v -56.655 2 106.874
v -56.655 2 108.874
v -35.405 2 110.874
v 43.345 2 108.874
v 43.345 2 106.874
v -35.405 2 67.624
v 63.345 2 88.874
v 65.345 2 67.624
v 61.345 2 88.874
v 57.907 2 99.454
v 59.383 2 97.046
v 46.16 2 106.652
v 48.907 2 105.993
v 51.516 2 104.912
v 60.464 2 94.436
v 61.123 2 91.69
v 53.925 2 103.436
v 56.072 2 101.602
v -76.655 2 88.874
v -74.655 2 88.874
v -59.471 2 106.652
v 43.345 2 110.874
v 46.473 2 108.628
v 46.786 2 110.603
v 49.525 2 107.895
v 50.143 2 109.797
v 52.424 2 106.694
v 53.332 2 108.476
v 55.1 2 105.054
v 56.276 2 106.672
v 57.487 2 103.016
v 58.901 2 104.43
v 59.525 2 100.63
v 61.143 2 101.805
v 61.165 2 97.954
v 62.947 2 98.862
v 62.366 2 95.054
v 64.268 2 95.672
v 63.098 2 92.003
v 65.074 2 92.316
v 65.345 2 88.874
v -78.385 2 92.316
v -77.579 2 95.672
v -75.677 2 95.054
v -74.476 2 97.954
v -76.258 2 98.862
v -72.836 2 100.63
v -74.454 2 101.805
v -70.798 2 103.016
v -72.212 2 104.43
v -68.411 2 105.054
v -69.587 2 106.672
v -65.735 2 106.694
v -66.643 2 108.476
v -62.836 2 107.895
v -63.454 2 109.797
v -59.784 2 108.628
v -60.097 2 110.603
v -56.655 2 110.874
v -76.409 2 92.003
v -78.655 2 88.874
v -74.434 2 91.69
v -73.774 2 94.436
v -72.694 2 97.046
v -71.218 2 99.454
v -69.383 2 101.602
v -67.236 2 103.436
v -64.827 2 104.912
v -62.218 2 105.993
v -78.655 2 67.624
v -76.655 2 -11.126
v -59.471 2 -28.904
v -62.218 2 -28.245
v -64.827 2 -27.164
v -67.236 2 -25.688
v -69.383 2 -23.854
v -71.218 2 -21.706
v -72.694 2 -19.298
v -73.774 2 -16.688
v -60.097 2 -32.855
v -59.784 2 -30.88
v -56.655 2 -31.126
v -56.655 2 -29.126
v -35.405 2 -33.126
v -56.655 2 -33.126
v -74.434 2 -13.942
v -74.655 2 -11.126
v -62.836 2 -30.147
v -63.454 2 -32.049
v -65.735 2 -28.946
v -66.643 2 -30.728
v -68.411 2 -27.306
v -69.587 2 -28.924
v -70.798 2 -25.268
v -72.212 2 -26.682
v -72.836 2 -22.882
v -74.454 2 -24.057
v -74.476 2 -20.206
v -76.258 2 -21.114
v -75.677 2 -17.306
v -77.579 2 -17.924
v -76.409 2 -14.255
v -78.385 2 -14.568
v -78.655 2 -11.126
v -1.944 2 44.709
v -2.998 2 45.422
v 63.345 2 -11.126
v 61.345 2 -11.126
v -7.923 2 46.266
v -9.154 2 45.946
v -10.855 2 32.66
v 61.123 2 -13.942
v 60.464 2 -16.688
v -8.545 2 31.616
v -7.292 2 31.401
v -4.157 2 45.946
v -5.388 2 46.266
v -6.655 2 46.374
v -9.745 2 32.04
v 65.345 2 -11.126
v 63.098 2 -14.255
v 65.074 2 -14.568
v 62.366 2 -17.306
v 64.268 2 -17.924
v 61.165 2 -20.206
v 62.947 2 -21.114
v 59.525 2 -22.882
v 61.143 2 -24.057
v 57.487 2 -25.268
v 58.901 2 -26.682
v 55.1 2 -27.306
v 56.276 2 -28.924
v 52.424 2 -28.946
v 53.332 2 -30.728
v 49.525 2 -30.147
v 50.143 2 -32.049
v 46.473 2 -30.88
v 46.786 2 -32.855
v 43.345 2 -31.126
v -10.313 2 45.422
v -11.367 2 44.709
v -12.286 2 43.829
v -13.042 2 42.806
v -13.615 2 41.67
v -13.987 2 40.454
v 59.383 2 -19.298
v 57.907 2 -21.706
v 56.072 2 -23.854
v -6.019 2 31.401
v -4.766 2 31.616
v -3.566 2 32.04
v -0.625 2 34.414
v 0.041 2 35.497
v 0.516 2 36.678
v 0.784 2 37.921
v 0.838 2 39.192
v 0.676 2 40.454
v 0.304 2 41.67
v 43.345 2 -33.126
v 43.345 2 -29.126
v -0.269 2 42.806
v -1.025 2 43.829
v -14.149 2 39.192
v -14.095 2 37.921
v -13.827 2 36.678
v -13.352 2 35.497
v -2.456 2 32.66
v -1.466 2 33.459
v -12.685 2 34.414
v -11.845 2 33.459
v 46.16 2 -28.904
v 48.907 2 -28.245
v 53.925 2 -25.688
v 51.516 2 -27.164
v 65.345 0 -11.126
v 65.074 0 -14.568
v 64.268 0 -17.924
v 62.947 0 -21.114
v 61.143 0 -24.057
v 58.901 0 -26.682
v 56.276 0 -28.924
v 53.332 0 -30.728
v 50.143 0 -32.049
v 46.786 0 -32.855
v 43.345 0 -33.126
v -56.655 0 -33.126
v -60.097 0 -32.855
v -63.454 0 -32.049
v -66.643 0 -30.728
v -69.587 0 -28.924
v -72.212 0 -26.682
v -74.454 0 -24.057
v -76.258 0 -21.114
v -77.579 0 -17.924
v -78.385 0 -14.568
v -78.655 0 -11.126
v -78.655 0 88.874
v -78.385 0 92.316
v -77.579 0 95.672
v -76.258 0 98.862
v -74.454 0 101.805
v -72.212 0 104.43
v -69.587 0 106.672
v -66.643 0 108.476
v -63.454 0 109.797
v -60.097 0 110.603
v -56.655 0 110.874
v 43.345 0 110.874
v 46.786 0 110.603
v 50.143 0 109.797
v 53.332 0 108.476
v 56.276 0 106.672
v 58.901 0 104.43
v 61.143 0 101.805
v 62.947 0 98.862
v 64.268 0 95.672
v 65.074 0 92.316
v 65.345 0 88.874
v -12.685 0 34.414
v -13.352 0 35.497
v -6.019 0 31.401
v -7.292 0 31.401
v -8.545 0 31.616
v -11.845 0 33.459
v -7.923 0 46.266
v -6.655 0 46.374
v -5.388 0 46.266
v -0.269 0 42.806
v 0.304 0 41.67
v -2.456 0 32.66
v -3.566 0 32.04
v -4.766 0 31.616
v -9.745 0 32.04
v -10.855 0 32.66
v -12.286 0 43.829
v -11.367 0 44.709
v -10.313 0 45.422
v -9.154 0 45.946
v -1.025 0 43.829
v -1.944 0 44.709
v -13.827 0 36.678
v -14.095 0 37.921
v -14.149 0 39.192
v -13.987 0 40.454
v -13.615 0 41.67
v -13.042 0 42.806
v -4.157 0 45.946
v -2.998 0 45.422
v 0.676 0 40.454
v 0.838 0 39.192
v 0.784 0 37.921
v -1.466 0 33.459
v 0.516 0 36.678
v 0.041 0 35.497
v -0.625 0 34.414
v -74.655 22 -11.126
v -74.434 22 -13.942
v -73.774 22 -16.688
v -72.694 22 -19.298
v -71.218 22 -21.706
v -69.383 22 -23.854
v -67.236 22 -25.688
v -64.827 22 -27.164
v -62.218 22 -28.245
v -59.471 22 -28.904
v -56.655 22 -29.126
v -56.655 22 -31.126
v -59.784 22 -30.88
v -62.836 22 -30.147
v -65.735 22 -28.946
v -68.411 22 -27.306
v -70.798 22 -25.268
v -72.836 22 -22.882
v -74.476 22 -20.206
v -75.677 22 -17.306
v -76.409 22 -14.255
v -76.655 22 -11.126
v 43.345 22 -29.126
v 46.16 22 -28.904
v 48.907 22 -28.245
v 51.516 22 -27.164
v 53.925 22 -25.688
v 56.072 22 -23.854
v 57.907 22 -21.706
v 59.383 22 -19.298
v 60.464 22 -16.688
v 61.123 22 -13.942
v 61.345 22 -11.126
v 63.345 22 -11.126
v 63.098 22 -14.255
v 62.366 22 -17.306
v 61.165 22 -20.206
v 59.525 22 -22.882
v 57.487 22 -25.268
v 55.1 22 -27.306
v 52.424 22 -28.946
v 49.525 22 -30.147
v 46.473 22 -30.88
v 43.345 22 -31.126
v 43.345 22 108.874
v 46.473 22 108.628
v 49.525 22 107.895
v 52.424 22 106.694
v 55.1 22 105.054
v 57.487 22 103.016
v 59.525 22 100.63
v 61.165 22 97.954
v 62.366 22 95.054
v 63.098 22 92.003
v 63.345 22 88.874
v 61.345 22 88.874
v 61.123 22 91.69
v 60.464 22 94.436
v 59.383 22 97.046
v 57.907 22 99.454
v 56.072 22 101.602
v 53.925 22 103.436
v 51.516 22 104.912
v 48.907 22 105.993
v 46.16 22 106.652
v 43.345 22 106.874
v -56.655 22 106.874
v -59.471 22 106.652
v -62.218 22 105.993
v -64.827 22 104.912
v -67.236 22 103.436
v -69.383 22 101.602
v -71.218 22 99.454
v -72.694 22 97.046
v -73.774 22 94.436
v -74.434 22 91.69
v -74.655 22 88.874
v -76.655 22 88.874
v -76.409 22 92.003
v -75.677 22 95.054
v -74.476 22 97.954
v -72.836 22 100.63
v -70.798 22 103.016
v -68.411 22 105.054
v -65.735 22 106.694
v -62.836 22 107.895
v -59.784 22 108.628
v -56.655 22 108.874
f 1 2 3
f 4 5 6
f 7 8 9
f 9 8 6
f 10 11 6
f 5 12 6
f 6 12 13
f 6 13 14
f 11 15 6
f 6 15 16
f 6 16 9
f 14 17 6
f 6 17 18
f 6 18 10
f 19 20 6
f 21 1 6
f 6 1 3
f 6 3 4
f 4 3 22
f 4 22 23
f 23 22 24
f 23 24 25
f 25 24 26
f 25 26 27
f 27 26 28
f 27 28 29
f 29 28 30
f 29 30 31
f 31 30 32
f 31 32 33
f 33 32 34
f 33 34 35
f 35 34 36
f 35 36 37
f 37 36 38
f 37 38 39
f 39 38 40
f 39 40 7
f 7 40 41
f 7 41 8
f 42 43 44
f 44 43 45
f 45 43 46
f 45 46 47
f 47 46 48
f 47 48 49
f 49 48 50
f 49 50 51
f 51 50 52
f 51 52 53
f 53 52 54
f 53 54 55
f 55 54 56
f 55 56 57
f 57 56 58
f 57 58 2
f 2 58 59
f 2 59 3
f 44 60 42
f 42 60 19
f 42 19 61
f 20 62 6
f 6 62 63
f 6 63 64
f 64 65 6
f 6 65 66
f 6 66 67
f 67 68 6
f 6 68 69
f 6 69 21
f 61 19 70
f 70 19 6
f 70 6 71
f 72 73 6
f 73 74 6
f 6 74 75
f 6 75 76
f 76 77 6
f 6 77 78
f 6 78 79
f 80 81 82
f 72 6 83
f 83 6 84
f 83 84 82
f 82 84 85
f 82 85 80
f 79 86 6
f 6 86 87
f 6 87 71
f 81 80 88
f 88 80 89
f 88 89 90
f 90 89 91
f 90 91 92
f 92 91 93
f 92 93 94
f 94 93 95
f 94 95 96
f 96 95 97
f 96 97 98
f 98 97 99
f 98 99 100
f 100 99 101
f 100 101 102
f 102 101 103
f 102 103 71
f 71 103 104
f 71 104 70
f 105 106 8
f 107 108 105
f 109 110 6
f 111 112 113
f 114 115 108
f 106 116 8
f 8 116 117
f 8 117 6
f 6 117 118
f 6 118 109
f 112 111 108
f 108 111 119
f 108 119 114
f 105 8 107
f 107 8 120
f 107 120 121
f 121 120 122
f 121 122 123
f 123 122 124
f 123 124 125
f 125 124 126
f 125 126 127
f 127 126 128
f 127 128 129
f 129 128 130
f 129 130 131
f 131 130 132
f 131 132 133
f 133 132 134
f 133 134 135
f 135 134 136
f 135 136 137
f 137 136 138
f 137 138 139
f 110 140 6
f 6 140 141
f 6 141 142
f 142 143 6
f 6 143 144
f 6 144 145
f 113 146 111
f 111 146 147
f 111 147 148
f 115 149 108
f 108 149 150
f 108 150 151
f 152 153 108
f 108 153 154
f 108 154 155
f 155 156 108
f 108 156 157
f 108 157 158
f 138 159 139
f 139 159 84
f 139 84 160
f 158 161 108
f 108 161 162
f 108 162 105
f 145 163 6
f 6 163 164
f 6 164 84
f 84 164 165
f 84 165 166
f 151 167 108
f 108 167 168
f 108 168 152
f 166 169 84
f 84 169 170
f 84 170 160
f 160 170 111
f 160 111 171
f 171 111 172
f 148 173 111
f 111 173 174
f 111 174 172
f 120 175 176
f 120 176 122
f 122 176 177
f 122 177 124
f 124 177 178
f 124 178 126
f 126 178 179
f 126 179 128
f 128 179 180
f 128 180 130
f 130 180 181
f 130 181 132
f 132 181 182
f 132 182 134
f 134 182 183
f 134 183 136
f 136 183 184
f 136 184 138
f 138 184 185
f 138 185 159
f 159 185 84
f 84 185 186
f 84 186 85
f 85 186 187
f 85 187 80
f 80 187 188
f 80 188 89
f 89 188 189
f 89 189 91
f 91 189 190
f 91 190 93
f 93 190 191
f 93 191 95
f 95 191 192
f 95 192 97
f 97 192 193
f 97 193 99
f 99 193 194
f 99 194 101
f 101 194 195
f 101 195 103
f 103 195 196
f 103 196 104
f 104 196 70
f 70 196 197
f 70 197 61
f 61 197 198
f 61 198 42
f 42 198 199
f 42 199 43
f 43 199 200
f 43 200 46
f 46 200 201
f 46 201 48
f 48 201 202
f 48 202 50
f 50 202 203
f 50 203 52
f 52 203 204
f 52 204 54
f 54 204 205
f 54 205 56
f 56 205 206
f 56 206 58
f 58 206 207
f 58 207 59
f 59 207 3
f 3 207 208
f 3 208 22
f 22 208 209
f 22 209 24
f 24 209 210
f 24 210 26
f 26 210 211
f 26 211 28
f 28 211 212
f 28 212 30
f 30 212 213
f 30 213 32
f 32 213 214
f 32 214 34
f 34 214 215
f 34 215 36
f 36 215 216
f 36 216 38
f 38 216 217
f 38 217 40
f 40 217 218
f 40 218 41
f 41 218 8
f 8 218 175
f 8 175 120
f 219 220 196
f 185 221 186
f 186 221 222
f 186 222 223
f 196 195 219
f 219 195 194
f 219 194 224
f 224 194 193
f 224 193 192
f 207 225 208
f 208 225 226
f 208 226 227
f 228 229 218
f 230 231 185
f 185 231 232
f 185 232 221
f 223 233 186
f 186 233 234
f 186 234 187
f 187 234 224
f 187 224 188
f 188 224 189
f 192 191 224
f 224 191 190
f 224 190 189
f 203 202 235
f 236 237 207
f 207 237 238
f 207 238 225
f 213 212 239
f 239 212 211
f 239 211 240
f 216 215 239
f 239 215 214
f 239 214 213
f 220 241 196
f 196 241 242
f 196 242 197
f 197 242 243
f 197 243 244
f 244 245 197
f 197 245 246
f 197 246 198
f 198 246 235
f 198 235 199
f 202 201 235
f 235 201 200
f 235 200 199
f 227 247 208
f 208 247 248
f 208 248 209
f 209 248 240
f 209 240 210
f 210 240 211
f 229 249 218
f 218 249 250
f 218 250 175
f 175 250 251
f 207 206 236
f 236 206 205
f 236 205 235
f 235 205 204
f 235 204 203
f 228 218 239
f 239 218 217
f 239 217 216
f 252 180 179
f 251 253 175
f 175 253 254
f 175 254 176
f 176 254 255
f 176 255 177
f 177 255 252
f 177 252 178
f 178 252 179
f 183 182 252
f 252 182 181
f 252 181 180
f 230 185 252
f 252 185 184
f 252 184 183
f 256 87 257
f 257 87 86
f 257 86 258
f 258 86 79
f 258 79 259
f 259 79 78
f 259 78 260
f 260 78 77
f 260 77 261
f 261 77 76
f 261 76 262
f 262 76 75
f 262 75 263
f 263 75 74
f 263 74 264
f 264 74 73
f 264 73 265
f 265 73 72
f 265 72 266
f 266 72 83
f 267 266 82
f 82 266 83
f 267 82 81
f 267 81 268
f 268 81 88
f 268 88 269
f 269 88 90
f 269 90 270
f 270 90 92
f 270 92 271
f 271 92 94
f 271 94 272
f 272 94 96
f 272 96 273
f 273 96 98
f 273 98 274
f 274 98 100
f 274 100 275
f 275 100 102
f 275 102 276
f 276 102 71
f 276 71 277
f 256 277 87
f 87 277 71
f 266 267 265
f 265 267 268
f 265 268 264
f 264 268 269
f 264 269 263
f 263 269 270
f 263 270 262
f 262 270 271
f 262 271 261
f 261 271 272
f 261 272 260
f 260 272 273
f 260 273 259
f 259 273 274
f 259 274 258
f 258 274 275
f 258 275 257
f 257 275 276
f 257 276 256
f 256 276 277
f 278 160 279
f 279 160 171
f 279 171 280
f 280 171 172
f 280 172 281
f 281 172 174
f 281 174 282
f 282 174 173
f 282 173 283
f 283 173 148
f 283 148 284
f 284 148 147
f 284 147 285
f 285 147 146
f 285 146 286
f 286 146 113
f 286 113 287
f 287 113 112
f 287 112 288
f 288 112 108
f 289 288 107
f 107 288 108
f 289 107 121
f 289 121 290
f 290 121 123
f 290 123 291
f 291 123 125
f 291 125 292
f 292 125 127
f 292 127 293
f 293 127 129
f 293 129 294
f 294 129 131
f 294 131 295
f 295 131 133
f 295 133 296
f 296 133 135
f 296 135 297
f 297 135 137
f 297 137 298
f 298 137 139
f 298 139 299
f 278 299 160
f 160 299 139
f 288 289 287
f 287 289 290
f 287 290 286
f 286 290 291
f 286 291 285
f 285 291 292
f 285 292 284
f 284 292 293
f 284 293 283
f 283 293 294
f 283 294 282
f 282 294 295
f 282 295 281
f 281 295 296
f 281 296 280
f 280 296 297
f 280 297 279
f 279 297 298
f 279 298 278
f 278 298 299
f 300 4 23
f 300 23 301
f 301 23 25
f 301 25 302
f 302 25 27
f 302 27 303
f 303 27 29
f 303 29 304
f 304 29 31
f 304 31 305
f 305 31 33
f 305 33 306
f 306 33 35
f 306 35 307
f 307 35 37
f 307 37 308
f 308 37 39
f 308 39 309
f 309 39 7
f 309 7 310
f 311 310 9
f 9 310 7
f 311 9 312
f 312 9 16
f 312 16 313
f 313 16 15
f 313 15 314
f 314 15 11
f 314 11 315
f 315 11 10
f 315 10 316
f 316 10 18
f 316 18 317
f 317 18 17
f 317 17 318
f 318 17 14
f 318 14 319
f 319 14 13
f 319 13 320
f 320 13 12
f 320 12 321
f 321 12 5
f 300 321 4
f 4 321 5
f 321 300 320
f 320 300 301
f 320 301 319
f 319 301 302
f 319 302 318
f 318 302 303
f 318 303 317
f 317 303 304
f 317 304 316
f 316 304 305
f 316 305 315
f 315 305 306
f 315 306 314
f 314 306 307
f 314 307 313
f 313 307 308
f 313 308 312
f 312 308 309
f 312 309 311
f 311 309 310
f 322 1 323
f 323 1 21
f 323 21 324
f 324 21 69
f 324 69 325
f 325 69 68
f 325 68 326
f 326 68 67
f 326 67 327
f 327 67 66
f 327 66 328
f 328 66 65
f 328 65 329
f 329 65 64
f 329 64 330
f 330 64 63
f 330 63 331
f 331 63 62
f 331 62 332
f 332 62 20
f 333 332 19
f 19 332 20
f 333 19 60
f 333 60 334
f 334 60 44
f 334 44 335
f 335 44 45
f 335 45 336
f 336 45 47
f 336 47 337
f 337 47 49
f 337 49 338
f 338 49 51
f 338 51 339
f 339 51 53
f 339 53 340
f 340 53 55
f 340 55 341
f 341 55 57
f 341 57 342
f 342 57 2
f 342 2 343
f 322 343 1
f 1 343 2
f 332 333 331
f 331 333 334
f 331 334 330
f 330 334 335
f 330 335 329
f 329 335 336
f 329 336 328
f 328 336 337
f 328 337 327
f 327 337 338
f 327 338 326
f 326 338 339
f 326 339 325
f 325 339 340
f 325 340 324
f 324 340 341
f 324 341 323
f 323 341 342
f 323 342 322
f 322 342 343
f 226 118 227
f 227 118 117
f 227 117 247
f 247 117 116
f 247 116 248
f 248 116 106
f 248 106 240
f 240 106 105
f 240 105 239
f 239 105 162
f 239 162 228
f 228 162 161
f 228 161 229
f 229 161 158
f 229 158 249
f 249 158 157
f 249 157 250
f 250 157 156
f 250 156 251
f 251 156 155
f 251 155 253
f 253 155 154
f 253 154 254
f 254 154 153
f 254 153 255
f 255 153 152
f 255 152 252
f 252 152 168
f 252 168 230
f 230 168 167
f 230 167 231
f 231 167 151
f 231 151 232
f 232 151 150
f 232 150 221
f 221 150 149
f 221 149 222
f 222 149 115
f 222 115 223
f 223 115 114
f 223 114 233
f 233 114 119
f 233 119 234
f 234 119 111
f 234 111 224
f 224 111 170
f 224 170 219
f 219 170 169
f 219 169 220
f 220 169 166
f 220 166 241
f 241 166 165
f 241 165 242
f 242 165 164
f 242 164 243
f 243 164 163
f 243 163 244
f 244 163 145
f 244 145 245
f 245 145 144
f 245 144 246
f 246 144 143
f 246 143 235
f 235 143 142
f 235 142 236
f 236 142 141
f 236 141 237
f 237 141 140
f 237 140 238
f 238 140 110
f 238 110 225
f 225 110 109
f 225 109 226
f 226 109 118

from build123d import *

# Parameters (mm, degrees)
BOSS_EXTRU_1_DEPTH      = 2
BOSS_EXTRU_2_DEPTH      = 20
ESQUISSE4_R             = 7.5
ENL_V_MAT_EXTRU_1_DEPTH = 138.403473125


with BuildPart() as part:
    # Esquisse1 → Boss.-Extru.1 (new body)
    with BuildSketch(Plane(origin=(0, 0, 0), x_dir=(1, 0, 0), z_dir=(0, 1, 0))):
        with BuildLine():
            Line((-56.655462185, 33.12605042), (43.344537815, 33.12605042))
            ThreePointArc((43.344537815, 33.12605042), (58.900887001, 26.682399606), (65.344537815, 11.12605042))
            Line((65.344537815, 11.12605042), (65.344537815, -88.87394958))
            ThreePointArc((65.344537815, -88.87394958), (58.900887001, -104.430298766), (43.344537815, -110.87394958))
            Line((43.344537815, -110.87394958), (-56.655462185, -110.87394958))
            ThreePointArc((-56.655462185, -110.87394958), (-72.211811371, -104.430298766), (-78.655462185, -88.87394958))
            Line((-78.655462185, -88.87394958), (-78.655462185, 11.12605042))
            ThreePointArc((-78.655462185, 11.12605042), (-72.211811371, 26.682399606), (-56.655462185, 33.12605042))
        make_face()
    extrude(amount=BOSS_EXTRU_1_DEPTH)

    # Esquisse3 → Boss.-Extru.2 (add)
    with BuildSketch(Plane(origin=(0, 2, 0), x_dir=(1, 0, 0), z_dir=(0, 1, 0))):
        with BuildLine():
            Line((43.344537815, 31.12605042), (43.344537815, 29.12605042))
            ThreePointArc((43.344537815, 29.12605042), (56.072459876, 23.853972482), (61.344537815, 11.12605042))
            Line((61.344537815, 11.12605042), (63.344537815, 11.12605042))
            ThreePointArc((63.344537815, 11.12605042), (57.486673439, 25.268186044), (43.344537815, 31.12605042))
        make_face()
        with BuildLine():
            Line((43.344537815, -106.87394958), (43.344537815, -108.87394958))
            ThreePointArc((43.344537815, -108.87394958), (57.486673439, -103.016085204), (63.344537815, -88.87394958))
            Line((63.344537815, -88.87394958), (61.344537815, -88.87394958))
            ThreePointArc((61.344537815, -88.87394958), (56.072459876, -101.601871641), (43.344537815, -106.87394958))
        make_face()
        with BuildLine():
            Line((-76.655462185, -88.87394958), (-74.655462185, -88.87394958))
            ThreePointArc((-74.655462185, -88.87394958), (-69.383384246, -101.601871641), (-56.655462185, -106.87394958))
            Line((-56.655462185, -106.87394958), (-56.655462185, -108.87394958))
            ThreePointArc((-56.655462185, -108.87394958), (-70.797597809, -103.016085204), (-76.655462185, -88.87394958))
        make_face()
        with BuildLine():
            Line((-76.655462185, 11.12605042), (-74.655462185, 11.12605042))
            ThreePointArc((-74.655462185, 11.12605042), (-69.383384246, 23.853972482), (-56.655462185, 29.12605042))
            Line((-56.655462185, 29.12605042), (-56.655462185, 31.12605042))
            ThreePointArc((-56.655462185, 31.12605042), (-70.797597809, 25.268186044), (-76.655462185, 11.12605042))
        make_face()
    extrude(amount=BOSS_EXTRU_2_DEPTH)

    # Esquisse4 → Enlèv. mat.-Extru.1 (cut, through all)
    with BuildSketch(Plane(origin=(0, 2, 0), x_dir=(1, 0, 0), z_dir=(0, 1, 0))):
        with Locations(Location((-6.655462185, -38.87394958, 0), (0, 0, 270))):
            Circle(ESQUISSE4_R)
    extrude(amount=-ENL_V_MAT_EXTRU_1_DEPTH, mode=Mode.SUBTRACT)


solid = part.part
